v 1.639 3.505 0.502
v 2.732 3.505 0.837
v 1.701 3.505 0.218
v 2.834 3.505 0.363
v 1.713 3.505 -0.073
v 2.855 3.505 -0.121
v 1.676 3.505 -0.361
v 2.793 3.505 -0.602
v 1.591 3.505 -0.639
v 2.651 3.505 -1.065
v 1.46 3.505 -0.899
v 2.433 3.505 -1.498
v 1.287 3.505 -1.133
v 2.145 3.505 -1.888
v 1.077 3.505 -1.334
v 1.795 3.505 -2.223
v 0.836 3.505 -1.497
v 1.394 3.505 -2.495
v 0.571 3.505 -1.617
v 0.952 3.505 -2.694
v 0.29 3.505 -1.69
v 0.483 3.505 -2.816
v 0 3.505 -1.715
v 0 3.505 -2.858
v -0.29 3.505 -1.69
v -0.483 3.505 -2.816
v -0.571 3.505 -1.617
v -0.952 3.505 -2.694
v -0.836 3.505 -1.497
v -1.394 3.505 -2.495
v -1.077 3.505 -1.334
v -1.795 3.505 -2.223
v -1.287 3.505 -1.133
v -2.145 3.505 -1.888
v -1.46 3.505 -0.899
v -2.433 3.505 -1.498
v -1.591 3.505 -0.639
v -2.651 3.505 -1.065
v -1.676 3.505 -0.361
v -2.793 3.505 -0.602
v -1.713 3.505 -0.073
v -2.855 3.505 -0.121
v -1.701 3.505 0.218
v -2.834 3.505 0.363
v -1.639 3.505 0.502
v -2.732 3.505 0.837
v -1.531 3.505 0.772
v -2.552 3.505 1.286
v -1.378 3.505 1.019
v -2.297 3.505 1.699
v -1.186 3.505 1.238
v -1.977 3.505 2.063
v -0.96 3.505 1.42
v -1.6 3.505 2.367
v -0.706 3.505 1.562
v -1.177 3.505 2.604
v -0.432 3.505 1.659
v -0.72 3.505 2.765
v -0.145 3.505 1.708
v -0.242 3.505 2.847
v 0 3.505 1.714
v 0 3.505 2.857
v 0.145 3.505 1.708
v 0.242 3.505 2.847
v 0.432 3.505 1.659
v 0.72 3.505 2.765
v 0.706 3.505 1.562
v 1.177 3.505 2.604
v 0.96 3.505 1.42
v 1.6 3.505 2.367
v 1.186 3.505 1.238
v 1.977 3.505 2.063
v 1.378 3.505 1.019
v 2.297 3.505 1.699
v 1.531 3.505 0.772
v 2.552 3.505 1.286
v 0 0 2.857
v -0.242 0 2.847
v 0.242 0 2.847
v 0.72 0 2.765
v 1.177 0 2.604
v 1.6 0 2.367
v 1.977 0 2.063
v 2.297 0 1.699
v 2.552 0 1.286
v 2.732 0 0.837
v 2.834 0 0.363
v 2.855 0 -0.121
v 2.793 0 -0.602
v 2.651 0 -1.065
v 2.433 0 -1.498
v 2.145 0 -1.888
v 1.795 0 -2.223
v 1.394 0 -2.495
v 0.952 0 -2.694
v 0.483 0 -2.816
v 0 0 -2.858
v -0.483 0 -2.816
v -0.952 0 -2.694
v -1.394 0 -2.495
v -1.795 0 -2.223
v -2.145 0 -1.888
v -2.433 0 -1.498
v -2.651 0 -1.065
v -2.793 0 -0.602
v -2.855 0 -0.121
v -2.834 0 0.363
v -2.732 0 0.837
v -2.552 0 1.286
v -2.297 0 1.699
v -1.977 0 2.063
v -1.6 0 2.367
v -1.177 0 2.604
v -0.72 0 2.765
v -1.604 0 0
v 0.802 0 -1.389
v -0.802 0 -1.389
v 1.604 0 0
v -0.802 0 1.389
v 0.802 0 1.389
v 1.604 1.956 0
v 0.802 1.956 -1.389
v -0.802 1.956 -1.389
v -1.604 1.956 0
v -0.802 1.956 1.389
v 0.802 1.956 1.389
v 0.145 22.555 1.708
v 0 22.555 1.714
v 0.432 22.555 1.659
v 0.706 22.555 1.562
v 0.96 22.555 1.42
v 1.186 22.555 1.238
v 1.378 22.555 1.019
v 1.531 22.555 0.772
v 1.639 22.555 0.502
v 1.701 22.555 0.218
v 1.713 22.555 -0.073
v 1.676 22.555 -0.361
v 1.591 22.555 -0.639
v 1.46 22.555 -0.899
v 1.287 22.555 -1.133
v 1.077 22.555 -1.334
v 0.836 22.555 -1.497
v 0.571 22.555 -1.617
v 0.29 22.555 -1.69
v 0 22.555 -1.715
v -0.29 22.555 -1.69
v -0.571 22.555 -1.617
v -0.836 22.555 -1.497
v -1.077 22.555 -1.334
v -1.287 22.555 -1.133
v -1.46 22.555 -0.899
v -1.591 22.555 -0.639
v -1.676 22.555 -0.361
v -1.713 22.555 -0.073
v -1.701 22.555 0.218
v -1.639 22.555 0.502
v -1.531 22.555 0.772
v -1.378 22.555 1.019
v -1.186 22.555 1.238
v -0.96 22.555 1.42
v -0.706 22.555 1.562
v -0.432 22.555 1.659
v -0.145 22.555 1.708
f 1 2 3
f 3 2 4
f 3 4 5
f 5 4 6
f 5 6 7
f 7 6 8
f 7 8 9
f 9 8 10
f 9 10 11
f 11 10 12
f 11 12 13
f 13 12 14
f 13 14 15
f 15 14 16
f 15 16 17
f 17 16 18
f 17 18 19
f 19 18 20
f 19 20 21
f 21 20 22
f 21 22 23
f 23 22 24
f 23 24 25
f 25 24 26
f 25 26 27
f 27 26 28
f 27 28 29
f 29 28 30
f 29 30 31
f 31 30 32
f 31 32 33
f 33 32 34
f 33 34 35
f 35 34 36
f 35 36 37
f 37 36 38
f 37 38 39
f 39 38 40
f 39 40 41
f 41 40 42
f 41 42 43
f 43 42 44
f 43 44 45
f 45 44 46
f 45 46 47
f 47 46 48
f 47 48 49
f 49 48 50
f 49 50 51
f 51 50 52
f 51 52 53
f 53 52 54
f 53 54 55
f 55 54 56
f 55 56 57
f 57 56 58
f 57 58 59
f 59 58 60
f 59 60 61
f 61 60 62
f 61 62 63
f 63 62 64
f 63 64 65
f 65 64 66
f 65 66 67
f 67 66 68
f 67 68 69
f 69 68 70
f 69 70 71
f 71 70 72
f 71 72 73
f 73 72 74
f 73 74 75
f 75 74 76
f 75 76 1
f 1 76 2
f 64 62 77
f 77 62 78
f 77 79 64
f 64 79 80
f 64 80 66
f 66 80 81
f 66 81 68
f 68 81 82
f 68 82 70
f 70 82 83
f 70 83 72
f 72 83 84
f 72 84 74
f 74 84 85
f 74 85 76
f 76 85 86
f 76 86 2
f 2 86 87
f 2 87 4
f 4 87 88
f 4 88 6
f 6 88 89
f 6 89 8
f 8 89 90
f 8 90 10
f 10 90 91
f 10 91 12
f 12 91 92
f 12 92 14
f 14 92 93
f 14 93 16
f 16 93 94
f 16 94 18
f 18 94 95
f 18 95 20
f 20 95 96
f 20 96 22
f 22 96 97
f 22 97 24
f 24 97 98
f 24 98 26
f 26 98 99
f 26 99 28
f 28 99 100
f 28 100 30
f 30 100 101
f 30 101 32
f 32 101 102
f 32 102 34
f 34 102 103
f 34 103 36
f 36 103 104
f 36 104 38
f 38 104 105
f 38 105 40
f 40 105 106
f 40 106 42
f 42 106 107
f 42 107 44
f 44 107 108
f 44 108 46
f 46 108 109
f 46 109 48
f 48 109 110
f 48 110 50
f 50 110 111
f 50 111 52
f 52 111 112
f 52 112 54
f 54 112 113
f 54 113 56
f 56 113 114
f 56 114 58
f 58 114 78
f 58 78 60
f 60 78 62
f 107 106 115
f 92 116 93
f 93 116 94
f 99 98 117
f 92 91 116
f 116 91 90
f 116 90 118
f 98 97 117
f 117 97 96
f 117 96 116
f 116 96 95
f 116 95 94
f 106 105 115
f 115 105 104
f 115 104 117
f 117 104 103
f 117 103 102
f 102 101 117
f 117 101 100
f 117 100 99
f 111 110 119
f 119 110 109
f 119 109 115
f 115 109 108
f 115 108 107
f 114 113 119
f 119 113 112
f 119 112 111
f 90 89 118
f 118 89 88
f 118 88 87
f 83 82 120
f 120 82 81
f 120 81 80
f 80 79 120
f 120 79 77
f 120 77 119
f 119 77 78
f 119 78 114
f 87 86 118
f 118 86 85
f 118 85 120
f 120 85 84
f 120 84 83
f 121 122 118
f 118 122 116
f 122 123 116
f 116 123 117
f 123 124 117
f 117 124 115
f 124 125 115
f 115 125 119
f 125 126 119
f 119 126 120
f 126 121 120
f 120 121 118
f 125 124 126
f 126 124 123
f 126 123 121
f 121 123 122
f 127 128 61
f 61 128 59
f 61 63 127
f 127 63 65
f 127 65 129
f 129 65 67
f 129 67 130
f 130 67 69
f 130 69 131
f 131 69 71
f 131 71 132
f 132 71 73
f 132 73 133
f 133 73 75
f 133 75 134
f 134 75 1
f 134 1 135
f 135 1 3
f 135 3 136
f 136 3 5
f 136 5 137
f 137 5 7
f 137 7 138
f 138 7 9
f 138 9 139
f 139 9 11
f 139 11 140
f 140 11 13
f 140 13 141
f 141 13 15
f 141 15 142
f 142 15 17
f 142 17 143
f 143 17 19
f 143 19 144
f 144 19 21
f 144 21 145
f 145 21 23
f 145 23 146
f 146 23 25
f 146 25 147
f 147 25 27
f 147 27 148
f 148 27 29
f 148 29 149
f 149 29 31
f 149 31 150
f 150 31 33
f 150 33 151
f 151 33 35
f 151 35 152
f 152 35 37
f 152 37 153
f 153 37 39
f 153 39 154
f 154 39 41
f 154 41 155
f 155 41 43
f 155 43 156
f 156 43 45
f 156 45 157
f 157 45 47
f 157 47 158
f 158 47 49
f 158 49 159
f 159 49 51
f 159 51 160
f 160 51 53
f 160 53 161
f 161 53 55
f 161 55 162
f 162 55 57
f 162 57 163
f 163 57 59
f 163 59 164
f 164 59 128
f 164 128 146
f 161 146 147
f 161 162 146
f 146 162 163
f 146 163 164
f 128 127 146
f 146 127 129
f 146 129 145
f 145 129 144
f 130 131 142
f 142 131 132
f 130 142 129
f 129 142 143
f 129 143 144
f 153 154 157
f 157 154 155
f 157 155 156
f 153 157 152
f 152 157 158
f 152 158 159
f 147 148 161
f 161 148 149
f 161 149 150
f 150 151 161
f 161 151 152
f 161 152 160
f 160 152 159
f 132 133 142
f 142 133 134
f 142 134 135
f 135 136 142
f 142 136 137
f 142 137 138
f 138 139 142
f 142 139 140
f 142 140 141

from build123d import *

# Parameters (mm, degrees)
SKETCH1_R           = 2.8575
BOSS_EXTRUDE1_DEPTH = 3.5052
CUT_EXTRUDE1_DEPTH  = 1.9558
SKETCH3_R           = 1.7145
BOSS_EXTRUDE2_DEPTH = 19.05


with BuildPart() as part:
    # Sketch1 → Boss-Extrude1 (new body)
    with BuildSketch(Plane(origin=(0, 0, 0), x_dir=(1, 0, 0), z_dir=(0, 1, 0))):
        Circle(SKETCH1_R)
    extrude(amount=BOSS_EXTRUDE1_DEPTH)

    # Sketch2 → Cut-Extrude1 (cut)
    with BuildSketch(Plane.XZ):
        Polygon((1.603951217, 0), (0.801975608, 1.3890625), (-0.801975608, 1.3890625), (-1.603951217, 0), (-0.801975608, -1.3890625), (0.801975608, -1.3890625), align=None)
    extrude(amount=-CUT_EXTRUDE1_DEPTH, mode=Mode.SUBTRACT)

    # Sketch3 → Boss-Extrude2 (add)
    with BuildSketch(Plane(origin=(0, 3.5052, 0), x_dir=(1, 0, 0), z_dir=(0, 1, 0))):
        Circle(SKETCH3_R)
    extrude(amount=BOSS_EXTRUDE2_DEPTH)


solid = part.part
